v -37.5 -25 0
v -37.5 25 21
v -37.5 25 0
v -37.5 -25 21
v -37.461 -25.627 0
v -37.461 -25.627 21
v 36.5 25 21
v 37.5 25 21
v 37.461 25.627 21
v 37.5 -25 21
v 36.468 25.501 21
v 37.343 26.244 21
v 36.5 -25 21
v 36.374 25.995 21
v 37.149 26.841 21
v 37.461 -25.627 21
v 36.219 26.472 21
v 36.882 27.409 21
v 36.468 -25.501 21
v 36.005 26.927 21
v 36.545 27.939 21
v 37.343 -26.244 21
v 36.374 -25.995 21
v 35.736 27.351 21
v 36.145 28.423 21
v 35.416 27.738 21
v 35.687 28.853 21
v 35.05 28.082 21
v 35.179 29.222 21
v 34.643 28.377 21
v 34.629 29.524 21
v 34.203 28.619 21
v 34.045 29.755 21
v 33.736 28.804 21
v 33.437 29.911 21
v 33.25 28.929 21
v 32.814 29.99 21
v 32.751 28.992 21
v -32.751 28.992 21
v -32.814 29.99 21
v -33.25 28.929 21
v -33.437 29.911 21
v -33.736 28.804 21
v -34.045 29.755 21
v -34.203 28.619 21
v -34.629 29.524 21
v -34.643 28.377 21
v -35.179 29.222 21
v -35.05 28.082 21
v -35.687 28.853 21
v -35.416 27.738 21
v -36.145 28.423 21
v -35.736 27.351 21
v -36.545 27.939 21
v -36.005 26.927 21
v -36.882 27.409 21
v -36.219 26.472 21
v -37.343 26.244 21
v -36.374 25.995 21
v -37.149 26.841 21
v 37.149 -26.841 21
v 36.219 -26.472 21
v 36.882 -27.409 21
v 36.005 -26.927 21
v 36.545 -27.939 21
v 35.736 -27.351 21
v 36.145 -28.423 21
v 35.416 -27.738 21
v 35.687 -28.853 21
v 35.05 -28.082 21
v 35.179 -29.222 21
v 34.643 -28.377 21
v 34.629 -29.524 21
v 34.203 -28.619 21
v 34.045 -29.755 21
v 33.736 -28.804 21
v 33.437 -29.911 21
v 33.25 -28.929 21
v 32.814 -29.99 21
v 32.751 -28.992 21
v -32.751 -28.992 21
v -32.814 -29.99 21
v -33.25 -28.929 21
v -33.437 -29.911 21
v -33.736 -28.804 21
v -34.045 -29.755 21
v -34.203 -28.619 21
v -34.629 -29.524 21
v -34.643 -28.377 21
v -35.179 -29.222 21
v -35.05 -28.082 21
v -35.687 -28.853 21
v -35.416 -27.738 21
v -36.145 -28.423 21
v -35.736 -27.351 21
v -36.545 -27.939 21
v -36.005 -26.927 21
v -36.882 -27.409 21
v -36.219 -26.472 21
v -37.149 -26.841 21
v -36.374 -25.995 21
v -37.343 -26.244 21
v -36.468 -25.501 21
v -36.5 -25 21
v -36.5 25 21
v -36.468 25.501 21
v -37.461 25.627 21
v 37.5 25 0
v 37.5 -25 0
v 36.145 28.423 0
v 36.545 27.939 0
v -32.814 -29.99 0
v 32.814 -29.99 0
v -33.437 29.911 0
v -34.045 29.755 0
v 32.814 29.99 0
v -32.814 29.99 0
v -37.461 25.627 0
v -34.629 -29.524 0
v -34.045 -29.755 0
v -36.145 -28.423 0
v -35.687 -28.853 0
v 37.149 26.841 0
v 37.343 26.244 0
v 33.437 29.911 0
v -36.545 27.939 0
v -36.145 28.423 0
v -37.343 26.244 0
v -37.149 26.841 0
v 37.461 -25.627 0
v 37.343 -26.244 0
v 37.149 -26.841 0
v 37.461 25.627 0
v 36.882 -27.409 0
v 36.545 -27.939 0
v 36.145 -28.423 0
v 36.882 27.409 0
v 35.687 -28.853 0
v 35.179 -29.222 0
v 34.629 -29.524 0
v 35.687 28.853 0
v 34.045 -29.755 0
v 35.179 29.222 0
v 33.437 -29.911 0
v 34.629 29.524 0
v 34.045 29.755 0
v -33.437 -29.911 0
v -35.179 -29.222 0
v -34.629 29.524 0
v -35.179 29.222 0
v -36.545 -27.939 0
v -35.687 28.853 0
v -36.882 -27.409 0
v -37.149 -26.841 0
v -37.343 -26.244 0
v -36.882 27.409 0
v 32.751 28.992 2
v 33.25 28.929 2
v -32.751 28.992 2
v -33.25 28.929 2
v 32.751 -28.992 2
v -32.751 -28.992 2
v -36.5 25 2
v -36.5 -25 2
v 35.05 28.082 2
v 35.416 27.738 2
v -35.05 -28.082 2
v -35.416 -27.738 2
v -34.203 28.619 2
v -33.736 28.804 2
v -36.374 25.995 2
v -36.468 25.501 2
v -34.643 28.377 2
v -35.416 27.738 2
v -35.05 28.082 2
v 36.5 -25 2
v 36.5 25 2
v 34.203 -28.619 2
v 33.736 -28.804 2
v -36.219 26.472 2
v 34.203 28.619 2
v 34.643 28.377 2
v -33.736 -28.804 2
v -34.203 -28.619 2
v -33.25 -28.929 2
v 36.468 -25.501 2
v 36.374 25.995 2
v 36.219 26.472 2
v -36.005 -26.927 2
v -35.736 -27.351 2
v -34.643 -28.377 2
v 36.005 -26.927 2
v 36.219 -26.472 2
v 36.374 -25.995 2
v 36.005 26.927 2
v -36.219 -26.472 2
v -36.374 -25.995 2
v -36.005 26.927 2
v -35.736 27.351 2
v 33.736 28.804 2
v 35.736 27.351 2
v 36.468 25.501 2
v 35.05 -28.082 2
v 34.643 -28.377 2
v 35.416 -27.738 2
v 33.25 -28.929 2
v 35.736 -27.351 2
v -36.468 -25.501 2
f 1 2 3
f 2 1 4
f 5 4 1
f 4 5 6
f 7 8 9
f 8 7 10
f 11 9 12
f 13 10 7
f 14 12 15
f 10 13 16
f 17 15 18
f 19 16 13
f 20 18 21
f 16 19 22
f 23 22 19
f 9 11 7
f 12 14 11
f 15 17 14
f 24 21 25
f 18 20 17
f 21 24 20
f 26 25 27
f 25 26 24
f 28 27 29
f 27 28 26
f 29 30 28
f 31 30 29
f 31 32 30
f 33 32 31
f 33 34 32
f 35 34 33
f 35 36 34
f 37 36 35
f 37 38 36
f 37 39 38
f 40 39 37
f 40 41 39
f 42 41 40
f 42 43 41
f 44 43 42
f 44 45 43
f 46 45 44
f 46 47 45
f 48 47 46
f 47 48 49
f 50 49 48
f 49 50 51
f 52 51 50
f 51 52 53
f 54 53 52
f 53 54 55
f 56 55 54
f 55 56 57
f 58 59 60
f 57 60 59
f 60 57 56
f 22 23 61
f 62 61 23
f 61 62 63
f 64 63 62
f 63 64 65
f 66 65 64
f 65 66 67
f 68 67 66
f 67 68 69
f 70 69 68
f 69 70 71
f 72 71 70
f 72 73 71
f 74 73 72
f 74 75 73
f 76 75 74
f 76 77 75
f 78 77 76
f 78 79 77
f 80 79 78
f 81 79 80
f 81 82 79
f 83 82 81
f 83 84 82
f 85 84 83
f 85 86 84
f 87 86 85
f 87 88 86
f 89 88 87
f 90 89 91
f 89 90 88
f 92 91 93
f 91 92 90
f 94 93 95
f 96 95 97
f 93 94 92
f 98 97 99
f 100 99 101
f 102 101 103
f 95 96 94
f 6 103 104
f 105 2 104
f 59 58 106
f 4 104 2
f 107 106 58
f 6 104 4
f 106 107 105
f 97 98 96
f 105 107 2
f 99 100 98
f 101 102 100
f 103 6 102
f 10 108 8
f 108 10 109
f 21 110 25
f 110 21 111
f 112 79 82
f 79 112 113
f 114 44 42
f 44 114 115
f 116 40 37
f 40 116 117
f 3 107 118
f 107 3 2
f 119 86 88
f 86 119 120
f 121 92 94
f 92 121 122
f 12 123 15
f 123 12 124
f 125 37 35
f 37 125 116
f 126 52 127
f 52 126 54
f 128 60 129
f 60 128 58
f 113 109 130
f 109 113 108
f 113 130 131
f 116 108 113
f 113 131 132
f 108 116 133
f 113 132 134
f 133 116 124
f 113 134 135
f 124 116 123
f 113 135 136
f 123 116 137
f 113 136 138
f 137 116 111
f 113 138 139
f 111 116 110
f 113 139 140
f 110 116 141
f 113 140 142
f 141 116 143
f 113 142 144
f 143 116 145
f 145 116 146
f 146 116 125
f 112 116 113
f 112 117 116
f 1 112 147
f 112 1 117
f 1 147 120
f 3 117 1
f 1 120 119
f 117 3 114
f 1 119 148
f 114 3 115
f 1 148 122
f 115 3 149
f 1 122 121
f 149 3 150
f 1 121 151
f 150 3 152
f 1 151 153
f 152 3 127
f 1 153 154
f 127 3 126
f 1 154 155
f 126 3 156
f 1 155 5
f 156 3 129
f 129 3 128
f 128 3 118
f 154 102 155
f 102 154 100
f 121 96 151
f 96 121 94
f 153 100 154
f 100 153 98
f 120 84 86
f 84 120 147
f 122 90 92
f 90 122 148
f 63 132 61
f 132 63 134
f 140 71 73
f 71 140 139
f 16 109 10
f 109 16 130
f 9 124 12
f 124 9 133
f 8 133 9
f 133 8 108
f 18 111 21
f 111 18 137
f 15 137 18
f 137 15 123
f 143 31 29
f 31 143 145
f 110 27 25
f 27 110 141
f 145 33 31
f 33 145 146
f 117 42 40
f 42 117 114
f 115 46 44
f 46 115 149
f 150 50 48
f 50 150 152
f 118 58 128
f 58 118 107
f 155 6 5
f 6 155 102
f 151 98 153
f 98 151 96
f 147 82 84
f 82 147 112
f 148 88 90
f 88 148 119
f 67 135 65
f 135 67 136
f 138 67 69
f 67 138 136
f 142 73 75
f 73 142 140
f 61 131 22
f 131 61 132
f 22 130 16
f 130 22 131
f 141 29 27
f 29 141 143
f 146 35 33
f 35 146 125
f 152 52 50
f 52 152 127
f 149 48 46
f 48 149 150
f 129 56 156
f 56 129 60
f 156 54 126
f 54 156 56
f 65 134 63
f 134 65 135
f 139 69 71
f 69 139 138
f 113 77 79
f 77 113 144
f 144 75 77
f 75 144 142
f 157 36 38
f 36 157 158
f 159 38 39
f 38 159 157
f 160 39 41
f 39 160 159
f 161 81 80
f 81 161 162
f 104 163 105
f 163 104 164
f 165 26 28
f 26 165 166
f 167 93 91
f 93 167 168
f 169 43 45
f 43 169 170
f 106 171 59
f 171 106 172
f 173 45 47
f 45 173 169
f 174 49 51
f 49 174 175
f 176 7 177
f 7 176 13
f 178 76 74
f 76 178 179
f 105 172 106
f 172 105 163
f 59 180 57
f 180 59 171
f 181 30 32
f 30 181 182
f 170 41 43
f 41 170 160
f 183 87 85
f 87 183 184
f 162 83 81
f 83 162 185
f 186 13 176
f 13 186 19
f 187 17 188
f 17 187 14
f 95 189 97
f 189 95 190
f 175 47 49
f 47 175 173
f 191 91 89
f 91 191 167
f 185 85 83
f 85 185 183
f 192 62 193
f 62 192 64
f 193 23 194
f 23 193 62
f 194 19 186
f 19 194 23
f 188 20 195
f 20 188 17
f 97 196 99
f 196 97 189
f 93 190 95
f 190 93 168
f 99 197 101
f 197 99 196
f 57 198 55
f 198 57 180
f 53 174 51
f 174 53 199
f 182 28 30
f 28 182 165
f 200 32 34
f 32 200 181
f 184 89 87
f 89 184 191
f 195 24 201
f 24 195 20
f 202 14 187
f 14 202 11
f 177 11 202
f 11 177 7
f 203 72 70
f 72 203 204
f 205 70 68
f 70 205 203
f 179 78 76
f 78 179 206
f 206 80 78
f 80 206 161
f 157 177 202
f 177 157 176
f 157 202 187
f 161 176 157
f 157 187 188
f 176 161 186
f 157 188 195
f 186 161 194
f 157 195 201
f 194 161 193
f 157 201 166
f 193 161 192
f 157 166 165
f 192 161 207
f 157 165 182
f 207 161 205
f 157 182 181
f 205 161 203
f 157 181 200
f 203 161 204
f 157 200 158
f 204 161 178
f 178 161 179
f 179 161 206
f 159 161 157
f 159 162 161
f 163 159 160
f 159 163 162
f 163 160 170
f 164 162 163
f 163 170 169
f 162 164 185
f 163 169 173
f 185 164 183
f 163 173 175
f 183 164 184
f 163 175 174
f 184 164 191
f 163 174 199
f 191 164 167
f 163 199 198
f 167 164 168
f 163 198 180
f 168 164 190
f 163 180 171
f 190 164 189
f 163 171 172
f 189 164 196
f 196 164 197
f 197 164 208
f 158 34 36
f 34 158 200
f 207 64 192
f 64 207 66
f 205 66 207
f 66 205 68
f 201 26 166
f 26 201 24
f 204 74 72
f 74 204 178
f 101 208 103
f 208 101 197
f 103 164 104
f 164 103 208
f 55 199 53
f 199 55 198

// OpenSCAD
$fn = 50;


difference() {
	union() {
		hull() {
			translate(v = [-32.5000000000, 25.0000000000, 0]) {
				cylinder(h = 21, r = 5);
			}
			translate(v = [32.5000000000, 25.0000000000, 0]) {
				cylinder(h = 21, r = 5);
			}
			translate(v = [-32.5000000000, -25.0000000000, 0]) {
				cylinder(h = 21, r = 5);
			}
			translate(v = [32.5000000000, -25.0000000000, 0]) {
				cylinder(h = 21, r = 5);
			}
		}
	}
	union() {
		translate(v = [0, 0, 2]) {
			hull() {
				translate(v = [-32.5000000000, 25.0000000000, 0]) {
					cylinder(h = 19, r = 4);
				}
				translate(v = [32.5000000000, 25.0000000000, 0]) {
					cylinder(h = 19, r = 4);
				}
				translate(v = [-32.5000000000, -25.0000000000, 0]) {
					cylinder(h = 19, r = 4);
				}
				translate(v = [32.5000000000, -25.0000000000, 0]) {
					cylinder(h = 19, r = 4);
				}
			}
		}
	}
}
